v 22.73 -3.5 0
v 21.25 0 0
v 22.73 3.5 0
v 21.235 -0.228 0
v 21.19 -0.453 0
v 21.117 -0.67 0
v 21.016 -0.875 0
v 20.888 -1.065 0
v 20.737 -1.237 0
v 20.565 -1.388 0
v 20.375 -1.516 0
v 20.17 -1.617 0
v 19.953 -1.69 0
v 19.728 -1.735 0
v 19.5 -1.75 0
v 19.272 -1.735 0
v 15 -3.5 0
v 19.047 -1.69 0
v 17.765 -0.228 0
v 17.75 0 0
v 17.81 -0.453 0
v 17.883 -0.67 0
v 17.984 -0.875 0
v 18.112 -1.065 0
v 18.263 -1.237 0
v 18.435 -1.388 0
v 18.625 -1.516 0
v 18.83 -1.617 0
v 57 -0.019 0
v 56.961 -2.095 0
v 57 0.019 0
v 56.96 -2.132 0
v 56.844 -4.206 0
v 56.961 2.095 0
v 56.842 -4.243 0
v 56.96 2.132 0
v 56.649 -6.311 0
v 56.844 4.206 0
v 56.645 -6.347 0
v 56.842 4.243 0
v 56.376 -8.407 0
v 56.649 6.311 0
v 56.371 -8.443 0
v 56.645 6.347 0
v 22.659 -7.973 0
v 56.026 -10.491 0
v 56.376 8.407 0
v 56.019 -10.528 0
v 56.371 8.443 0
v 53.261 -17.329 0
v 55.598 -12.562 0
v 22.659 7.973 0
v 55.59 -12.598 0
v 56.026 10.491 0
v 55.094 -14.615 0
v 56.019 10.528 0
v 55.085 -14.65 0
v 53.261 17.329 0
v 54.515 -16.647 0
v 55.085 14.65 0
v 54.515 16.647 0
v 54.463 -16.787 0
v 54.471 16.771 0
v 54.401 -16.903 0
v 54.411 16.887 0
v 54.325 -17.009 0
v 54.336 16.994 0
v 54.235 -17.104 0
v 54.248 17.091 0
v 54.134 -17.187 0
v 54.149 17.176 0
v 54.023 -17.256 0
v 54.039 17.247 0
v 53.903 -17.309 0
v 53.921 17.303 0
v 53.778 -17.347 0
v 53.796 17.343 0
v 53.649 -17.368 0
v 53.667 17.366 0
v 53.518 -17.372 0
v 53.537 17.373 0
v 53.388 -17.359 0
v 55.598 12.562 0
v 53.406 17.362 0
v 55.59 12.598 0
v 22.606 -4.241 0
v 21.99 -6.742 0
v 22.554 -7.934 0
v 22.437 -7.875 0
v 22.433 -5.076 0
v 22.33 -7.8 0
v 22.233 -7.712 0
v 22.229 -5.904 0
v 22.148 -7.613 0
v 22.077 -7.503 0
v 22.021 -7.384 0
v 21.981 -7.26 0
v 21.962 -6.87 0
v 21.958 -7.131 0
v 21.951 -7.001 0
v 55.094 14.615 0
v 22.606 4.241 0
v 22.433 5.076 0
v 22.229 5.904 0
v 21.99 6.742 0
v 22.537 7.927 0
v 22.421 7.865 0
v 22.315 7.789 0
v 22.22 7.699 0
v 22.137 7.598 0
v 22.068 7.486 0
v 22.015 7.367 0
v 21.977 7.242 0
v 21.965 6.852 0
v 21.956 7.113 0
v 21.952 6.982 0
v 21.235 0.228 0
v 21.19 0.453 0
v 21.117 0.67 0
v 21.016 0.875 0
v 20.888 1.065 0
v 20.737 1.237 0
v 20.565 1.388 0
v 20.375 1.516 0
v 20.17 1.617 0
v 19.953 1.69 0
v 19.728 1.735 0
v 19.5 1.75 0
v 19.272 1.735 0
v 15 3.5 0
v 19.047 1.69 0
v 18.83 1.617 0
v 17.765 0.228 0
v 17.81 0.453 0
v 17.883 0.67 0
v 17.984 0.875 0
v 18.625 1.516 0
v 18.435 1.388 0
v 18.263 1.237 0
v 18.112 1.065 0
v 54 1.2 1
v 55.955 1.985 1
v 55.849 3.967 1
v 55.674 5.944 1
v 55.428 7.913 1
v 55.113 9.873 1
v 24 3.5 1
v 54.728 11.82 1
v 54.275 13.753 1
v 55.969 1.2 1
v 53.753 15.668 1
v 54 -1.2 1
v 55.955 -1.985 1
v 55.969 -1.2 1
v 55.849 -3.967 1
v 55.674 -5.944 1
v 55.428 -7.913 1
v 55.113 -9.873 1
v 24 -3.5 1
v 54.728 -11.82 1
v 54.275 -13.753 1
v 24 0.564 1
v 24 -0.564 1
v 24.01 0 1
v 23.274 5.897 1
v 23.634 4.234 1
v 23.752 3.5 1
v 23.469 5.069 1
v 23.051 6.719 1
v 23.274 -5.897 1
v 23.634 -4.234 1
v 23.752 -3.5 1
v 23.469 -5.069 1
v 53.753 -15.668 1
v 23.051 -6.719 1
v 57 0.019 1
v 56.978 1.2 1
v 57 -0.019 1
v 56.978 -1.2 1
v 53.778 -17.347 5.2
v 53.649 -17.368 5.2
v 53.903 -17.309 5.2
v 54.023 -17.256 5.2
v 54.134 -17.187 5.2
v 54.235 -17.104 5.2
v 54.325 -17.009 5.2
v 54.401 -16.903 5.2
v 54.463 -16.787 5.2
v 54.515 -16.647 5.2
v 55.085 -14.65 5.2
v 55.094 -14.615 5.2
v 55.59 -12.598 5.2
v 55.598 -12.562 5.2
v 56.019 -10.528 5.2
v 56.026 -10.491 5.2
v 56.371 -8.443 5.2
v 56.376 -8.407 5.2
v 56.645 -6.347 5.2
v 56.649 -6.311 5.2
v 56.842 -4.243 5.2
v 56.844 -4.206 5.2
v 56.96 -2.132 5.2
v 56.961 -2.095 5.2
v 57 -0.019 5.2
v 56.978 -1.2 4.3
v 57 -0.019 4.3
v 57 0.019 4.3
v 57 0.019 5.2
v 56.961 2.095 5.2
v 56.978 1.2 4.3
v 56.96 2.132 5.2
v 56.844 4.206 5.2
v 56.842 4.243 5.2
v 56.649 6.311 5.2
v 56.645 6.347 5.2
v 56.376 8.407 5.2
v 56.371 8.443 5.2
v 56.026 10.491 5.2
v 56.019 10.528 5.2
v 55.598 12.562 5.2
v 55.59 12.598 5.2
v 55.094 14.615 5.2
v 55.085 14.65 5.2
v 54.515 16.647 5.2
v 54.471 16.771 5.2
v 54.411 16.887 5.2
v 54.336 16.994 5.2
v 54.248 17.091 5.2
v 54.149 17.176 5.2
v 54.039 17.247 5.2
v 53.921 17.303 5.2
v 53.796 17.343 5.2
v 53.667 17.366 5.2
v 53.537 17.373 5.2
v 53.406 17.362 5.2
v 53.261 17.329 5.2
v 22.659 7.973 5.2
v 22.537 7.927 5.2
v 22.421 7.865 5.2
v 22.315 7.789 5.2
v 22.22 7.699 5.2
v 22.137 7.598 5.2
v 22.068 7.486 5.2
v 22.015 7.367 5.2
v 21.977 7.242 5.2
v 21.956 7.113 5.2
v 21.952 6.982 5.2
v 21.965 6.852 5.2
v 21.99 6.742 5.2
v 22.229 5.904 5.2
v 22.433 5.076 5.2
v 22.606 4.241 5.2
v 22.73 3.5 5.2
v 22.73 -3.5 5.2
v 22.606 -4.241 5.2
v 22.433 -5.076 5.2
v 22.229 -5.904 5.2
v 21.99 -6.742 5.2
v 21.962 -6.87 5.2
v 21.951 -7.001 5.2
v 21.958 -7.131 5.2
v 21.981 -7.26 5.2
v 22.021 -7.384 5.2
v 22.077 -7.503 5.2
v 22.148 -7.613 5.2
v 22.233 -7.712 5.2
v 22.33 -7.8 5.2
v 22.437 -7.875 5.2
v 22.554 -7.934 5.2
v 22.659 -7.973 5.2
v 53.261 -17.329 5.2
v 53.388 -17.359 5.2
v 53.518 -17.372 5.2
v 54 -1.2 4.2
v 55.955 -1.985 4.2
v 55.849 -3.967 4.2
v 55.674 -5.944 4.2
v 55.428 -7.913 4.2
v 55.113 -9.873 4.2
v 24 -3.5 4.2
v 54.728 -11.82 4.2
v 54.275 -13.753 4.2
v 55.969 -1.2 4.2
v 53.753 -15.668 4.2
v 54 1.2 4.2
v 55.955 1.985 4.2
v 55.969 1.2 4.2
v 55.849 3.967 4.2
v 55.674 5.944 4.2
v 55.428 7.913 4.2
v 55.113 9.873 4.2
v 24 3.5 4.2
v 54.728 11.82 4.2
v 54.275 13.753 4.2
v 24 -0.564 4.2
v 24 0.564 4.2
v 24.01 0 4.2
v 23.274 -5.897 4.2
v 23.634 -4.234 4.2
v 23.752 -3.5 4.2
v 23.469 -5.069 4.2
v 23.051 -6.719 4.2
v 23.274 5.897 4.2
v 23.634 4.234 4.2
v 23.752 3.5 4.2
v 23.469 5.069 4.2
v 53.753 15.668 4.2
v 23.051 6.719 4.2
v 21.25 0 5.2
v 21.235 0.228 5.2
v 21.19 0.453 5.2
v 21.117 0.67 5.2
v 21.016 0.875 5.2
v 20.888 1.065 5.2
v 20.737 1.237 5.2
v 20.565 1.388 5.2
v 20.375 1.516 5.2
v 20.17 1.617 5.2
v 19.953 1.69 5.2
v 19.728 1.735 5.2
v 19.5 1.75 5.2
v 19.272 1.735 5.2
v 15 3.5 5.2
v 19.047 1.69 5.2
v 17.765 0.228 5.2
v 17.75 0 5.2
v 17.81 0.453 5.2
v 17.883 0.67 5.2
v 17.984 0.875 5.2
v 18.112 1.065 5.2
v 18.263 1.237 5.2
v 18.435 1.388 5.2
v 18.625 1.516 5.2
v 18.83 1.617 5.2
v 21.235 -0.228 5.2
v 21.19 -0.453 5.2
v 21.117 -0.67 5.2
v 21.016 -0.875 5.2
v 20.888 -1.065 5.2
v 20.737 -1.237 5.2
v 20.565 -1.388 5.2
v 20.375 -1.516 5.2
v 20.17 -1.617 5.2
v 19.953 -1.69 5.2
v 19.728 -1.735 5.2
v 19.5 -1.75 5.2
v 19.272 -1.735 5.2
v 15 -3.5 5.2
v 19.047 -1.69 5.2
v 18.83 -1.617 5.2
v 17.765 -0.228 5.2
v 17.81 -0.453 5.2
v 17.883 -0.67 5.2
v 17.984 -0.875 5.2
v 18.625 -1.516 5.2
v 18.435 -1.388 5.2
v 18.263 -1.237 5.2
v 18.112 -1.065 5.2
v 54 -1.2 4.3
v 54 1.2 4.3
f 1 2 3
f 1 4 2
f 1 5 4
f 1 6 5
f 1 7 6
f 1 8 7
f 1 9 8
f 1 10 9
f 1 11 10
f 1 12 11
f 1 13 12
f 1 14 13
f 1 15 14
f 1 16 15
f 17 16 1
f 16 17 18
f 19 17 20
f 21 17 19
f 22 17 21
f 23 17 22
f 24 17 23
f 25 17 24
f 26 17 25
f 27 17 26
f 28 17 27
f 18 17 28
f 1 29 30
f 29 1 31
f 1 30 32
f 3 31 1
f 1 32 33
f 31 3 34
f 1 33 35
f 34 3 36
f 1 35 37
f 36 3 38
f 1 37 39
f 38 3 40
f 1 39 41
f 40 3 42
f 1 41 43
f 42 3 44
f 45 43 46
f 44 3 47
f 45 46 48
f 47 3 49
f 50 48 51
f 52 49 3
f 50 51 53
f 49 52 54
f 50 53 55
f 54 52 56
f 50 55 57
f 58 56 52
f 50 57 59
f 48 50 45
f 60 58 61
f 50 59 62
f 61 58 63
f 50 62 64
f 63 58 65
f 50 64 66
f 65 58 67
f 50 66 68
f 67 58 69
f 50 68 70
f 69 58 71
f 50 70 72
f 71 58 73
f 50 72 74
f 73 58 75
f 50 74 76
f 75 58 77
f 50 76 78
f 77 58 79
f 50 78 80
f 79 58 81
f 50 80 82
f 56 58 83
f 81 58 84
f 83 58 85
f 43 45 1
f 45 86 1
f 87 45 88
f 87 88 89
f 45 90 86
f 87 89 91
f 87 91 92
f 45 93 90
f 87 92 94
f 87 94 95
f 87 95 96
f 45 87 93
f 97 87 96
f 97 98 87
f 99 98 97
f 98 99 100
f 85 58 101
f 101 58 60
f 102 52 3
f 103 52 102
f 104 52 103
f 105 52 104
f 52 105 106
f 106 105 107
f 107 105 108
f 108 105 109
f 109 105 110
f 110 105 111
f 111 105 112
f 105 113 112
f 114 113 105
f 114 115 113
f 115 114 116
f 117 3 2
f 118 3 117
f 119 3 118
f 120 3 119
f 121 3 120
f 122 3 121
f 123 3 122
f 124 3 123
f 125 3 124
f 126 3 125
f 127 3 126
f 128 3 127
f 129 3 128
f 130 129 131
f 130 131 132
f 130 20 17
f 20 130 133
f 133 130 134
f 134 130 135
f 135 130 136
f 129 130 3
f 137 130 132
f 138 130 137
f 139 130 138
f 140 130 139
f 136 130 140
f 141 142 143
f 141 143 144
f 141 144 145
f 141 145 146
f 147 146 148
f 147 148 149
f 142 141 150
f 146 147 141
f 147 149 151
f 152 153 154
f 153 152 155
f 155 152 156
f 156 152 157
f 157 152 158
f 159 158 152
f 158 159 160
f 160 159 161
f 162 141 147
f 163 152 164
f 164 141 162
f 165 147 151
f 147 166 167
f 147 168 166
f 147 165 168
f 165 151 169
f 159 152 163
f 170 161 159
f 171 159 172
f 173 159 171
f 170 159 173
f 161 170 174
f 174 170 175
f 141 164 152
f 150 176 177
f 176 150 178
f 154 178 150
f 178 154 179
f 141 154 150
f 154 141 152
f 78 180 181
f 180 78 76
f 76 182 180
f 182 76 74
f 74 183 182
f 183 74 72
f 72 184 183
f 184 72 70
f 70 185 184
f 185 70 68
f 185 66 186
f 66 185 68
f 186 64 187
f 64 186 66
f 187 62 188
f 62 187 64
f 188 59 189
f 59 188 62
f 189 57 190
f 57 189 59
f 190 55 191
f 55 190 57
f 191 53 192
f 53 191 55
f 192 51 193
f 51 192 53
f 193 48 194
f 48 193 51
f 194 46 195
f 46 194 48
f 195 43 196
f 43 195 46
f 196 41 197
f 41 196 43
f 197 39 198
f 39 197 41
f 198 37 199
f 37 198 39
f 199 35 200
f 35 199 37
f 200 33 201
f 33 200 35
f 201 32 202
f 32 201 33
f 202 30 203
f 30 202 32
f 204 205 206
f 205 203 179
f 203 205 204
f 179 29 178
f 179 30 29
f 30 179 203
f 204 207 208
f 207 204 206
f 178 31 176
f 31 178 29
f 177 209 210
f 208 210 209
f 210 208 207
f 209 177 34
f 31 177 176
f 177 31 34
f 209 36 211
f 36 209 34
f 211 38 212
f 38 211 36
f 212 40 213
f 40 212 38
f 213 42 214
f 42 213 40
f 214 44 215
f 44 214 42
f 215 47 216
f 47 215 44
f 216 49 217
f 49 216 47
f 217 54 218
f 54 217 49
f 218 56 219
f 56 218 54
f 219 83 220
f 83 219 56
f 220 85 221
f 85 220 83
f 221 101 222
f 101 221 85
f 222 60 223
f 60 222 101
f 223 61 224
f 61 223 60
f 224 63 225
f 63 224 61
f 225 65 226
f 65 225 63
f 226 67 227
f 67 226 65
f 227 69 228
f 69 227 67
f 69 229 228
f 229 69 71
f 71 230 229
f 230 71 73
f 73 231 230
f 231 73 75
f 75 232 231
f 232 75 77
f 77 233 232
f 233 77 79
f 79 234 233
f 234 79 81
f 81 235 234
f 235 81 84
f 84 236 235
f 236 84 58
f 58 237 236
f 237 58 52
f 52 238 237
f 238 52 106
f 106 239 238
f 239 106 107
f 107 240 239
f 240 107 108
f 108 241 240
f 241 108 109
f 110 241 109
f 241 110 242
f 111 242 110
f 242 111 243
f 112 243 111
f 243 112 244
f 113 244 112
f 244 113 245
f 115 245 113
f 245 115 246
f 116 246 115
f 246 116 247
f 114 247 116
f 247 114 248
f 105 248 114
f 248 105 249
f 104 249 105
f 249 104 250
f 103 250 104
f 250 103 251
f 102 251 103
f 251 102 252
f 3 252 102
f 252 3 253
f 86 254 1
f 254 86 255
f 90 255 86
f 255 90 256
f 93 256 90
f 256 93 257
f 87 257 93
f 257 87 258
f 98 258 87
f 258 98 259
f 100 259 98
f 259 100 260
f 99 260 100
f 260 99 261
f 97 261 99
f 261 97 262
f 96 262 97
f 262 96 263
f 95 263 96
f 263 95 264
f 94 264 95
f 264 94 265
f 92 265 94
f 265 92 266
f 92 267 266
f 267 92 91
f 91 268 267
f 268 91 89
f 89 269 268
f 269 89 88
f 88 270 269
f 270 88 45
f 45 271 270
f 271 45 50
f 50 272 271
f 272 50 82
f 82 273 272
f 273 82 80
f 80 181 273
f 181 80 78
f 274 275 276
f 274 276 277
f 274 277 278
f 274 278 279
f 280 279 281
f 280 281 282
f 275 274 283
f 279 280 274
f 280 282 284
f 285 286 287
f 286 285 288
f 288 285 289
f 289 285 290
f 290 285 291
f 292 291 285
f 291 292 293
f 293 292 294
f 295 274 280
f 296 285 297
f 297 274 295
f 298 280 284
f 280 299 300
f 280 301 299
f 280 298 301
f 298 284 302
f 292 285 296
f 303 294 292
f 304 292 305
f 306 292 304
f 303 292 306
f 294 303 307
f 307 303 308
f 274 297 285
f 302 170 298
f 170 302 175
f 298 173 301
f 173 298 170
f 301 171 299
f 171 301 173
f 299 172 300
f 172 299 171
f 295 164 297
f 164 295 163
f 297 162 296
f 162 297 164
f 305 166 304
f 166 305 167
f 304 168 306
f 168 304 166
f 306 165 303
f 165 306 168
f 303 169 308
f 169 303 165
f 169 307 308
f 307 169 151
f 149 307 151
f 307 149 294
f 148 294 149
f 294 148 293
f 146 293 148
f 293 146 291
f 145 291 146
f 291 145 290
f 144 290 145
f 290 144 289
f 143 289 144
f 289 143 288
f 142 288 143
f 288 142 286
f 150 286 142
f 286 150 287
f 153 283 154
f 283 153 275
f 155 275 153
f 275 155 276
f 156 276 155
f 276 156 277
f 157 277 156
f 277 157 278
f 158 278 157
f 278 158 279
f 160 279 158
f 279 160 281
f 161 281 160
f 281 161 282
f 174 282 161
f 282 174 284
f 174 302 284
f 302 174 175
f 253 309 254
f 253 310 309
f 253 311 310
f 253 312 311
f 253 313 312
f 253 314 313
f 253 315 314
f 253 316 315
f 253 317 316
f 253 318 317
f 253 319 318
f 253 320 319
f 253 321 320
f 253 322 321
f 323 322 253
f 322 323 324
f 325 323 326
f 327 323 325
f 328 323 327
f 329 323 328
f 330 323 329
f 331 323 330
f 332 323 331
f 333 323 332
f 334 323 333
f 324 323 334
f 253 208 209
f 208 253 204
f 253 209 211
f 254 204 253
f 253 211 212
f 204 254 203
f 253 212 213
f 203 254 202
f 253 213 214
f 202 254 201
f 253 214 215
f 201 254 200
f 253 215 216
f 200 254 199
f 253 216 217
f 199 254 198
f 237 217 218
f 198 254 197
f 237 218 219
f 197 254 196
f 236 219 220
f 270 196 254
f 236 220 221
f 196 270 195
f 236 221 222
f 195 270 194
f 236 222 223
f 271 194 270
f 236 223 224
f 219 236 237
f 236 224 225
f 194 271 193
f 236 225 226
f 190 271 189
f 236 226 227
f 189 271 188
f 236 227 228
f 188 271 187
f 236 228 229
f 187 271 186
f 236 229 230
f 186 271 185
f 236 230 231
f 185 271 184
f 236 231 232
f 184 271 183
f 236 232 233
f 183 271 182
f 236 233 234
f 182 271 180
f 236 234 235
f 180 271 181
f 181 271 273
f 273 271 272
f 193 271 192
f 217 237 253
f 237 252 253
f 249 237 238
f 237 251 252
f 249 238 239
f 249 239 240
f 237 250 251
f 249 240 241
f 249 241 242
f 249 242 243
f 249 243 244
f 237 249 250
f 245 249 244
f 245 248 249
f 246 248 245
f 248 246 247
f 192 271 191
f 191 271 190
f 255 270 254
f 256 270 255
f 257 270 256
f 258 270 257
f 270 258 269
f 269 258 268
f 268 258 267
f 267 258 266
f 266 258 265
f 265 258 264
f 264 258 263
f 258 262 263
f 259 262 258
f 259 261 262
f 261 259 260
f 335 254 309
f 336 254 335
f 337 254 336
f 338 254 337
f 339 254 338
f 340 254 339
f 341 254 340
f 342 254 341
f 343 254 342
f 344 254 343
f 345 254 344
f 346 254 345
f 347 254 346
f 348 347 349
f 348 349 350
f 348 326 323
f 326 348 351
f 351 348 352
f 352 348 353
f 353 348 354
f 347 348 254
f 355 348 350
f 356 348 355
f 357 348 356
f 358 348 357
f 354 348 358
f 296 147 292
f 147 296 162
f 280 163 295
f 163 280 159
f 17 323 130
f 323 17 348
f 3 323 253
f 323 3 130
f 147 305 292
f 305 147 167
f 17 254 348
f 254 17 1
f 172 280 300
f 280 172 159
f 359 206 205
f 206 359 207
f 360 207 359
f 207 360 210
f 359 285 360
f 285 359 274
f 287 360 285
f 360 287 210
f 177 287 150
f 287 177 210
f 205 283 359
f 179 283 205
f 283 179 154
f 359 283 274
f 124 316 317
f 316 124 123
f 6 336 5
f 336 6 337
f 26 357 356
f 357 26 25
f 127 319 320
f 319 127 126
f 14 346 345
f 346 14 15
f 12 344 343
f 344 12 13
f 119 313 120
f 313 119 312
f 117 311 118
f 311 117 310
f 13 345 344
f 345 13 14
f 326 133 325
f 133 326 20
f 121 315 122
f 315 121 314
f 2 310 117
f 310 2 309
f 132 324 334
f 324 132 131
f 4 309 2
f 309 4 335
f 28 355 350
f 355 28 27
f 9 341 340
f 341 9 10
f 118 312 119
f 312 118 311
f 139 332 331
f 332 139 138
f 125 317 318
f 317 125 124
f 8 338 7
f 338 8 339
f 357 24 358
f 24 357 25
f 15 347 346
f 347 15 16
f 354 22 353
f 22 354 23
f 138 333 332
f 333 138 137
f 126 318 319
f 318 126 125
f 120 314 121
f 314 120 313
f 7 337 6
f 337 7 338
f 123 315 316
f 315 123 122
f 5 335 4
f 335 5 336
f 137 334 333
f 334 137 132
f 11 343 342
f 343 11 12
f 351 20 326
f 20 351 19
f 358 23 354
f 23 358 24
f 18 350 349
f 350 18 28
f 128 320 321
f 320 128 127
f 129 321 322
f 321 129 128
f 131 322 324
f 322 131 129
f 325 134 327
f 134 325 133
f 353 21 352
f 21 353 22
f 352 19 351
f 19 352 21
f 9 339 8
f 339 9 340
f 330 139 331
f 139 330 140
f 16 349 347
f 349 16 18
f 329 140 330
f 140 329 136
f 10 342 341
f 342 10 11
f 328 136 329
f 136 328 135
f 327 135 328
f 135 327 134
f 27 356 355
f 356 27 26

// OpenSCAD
// Gen-J pancake former — print ×18 (9 per stator); wider for 40° pitch; 26 AWG ~120–160 t
coil_id_r = 24.0; coil_od_r = 56.0; span_deg = 34.0;
flange_t = 1.0; core_t = 3.2; wall = 1.0; slot_w = 2.4;
mount_hole = 3.5; tab_len = 7.0; $fn = 48;
module sector_2d(r_in, r_out, ang) {
    polygon([
        for (a = [-ang/2 : ang/16 : ang/2]) [r_in*cos(a), r_in*sin(a)],
        for (a = [ang/2 : -ang/16 : -ang/2]) [r_out*cos(a), r_out*sin(a)]
    ]);
}
module flange() { linear_extrude(flange_t) offset(r=wall) sector_2d(coil_id_r, coil_od_r, span_deg); }
difference() {
    union() {
        flange();
        translate([0, 0, flange_t])
            linear_extrude(core_t)
                difference() {
                    offset(r=wall) sector_2d(coil_id_r, coil_od_r, span_deg);
                    sector_2d(coil_id_r + 0.01, coil_od_r - 0.01, span_deg - 1.5);
                }
        translate([0, 0, flange_t + core_t]) flange();
        translate([coil_id_r - tab_len - 2, -3.5, 0])
            cube([tab_len + 2, 7, flange_t*2 + core_t]);
    }
    translate([coil_od_r - 2, -slot_w/2, flange_t]) cube([wall + 4, slot_w, core_t + 0.1]);
    translate([coil_id_r - tab_len/2 - 1, 0, -0.1])
        cylinder(d=mount_hole, h=flange_t*2 + core_t + 1);
}
